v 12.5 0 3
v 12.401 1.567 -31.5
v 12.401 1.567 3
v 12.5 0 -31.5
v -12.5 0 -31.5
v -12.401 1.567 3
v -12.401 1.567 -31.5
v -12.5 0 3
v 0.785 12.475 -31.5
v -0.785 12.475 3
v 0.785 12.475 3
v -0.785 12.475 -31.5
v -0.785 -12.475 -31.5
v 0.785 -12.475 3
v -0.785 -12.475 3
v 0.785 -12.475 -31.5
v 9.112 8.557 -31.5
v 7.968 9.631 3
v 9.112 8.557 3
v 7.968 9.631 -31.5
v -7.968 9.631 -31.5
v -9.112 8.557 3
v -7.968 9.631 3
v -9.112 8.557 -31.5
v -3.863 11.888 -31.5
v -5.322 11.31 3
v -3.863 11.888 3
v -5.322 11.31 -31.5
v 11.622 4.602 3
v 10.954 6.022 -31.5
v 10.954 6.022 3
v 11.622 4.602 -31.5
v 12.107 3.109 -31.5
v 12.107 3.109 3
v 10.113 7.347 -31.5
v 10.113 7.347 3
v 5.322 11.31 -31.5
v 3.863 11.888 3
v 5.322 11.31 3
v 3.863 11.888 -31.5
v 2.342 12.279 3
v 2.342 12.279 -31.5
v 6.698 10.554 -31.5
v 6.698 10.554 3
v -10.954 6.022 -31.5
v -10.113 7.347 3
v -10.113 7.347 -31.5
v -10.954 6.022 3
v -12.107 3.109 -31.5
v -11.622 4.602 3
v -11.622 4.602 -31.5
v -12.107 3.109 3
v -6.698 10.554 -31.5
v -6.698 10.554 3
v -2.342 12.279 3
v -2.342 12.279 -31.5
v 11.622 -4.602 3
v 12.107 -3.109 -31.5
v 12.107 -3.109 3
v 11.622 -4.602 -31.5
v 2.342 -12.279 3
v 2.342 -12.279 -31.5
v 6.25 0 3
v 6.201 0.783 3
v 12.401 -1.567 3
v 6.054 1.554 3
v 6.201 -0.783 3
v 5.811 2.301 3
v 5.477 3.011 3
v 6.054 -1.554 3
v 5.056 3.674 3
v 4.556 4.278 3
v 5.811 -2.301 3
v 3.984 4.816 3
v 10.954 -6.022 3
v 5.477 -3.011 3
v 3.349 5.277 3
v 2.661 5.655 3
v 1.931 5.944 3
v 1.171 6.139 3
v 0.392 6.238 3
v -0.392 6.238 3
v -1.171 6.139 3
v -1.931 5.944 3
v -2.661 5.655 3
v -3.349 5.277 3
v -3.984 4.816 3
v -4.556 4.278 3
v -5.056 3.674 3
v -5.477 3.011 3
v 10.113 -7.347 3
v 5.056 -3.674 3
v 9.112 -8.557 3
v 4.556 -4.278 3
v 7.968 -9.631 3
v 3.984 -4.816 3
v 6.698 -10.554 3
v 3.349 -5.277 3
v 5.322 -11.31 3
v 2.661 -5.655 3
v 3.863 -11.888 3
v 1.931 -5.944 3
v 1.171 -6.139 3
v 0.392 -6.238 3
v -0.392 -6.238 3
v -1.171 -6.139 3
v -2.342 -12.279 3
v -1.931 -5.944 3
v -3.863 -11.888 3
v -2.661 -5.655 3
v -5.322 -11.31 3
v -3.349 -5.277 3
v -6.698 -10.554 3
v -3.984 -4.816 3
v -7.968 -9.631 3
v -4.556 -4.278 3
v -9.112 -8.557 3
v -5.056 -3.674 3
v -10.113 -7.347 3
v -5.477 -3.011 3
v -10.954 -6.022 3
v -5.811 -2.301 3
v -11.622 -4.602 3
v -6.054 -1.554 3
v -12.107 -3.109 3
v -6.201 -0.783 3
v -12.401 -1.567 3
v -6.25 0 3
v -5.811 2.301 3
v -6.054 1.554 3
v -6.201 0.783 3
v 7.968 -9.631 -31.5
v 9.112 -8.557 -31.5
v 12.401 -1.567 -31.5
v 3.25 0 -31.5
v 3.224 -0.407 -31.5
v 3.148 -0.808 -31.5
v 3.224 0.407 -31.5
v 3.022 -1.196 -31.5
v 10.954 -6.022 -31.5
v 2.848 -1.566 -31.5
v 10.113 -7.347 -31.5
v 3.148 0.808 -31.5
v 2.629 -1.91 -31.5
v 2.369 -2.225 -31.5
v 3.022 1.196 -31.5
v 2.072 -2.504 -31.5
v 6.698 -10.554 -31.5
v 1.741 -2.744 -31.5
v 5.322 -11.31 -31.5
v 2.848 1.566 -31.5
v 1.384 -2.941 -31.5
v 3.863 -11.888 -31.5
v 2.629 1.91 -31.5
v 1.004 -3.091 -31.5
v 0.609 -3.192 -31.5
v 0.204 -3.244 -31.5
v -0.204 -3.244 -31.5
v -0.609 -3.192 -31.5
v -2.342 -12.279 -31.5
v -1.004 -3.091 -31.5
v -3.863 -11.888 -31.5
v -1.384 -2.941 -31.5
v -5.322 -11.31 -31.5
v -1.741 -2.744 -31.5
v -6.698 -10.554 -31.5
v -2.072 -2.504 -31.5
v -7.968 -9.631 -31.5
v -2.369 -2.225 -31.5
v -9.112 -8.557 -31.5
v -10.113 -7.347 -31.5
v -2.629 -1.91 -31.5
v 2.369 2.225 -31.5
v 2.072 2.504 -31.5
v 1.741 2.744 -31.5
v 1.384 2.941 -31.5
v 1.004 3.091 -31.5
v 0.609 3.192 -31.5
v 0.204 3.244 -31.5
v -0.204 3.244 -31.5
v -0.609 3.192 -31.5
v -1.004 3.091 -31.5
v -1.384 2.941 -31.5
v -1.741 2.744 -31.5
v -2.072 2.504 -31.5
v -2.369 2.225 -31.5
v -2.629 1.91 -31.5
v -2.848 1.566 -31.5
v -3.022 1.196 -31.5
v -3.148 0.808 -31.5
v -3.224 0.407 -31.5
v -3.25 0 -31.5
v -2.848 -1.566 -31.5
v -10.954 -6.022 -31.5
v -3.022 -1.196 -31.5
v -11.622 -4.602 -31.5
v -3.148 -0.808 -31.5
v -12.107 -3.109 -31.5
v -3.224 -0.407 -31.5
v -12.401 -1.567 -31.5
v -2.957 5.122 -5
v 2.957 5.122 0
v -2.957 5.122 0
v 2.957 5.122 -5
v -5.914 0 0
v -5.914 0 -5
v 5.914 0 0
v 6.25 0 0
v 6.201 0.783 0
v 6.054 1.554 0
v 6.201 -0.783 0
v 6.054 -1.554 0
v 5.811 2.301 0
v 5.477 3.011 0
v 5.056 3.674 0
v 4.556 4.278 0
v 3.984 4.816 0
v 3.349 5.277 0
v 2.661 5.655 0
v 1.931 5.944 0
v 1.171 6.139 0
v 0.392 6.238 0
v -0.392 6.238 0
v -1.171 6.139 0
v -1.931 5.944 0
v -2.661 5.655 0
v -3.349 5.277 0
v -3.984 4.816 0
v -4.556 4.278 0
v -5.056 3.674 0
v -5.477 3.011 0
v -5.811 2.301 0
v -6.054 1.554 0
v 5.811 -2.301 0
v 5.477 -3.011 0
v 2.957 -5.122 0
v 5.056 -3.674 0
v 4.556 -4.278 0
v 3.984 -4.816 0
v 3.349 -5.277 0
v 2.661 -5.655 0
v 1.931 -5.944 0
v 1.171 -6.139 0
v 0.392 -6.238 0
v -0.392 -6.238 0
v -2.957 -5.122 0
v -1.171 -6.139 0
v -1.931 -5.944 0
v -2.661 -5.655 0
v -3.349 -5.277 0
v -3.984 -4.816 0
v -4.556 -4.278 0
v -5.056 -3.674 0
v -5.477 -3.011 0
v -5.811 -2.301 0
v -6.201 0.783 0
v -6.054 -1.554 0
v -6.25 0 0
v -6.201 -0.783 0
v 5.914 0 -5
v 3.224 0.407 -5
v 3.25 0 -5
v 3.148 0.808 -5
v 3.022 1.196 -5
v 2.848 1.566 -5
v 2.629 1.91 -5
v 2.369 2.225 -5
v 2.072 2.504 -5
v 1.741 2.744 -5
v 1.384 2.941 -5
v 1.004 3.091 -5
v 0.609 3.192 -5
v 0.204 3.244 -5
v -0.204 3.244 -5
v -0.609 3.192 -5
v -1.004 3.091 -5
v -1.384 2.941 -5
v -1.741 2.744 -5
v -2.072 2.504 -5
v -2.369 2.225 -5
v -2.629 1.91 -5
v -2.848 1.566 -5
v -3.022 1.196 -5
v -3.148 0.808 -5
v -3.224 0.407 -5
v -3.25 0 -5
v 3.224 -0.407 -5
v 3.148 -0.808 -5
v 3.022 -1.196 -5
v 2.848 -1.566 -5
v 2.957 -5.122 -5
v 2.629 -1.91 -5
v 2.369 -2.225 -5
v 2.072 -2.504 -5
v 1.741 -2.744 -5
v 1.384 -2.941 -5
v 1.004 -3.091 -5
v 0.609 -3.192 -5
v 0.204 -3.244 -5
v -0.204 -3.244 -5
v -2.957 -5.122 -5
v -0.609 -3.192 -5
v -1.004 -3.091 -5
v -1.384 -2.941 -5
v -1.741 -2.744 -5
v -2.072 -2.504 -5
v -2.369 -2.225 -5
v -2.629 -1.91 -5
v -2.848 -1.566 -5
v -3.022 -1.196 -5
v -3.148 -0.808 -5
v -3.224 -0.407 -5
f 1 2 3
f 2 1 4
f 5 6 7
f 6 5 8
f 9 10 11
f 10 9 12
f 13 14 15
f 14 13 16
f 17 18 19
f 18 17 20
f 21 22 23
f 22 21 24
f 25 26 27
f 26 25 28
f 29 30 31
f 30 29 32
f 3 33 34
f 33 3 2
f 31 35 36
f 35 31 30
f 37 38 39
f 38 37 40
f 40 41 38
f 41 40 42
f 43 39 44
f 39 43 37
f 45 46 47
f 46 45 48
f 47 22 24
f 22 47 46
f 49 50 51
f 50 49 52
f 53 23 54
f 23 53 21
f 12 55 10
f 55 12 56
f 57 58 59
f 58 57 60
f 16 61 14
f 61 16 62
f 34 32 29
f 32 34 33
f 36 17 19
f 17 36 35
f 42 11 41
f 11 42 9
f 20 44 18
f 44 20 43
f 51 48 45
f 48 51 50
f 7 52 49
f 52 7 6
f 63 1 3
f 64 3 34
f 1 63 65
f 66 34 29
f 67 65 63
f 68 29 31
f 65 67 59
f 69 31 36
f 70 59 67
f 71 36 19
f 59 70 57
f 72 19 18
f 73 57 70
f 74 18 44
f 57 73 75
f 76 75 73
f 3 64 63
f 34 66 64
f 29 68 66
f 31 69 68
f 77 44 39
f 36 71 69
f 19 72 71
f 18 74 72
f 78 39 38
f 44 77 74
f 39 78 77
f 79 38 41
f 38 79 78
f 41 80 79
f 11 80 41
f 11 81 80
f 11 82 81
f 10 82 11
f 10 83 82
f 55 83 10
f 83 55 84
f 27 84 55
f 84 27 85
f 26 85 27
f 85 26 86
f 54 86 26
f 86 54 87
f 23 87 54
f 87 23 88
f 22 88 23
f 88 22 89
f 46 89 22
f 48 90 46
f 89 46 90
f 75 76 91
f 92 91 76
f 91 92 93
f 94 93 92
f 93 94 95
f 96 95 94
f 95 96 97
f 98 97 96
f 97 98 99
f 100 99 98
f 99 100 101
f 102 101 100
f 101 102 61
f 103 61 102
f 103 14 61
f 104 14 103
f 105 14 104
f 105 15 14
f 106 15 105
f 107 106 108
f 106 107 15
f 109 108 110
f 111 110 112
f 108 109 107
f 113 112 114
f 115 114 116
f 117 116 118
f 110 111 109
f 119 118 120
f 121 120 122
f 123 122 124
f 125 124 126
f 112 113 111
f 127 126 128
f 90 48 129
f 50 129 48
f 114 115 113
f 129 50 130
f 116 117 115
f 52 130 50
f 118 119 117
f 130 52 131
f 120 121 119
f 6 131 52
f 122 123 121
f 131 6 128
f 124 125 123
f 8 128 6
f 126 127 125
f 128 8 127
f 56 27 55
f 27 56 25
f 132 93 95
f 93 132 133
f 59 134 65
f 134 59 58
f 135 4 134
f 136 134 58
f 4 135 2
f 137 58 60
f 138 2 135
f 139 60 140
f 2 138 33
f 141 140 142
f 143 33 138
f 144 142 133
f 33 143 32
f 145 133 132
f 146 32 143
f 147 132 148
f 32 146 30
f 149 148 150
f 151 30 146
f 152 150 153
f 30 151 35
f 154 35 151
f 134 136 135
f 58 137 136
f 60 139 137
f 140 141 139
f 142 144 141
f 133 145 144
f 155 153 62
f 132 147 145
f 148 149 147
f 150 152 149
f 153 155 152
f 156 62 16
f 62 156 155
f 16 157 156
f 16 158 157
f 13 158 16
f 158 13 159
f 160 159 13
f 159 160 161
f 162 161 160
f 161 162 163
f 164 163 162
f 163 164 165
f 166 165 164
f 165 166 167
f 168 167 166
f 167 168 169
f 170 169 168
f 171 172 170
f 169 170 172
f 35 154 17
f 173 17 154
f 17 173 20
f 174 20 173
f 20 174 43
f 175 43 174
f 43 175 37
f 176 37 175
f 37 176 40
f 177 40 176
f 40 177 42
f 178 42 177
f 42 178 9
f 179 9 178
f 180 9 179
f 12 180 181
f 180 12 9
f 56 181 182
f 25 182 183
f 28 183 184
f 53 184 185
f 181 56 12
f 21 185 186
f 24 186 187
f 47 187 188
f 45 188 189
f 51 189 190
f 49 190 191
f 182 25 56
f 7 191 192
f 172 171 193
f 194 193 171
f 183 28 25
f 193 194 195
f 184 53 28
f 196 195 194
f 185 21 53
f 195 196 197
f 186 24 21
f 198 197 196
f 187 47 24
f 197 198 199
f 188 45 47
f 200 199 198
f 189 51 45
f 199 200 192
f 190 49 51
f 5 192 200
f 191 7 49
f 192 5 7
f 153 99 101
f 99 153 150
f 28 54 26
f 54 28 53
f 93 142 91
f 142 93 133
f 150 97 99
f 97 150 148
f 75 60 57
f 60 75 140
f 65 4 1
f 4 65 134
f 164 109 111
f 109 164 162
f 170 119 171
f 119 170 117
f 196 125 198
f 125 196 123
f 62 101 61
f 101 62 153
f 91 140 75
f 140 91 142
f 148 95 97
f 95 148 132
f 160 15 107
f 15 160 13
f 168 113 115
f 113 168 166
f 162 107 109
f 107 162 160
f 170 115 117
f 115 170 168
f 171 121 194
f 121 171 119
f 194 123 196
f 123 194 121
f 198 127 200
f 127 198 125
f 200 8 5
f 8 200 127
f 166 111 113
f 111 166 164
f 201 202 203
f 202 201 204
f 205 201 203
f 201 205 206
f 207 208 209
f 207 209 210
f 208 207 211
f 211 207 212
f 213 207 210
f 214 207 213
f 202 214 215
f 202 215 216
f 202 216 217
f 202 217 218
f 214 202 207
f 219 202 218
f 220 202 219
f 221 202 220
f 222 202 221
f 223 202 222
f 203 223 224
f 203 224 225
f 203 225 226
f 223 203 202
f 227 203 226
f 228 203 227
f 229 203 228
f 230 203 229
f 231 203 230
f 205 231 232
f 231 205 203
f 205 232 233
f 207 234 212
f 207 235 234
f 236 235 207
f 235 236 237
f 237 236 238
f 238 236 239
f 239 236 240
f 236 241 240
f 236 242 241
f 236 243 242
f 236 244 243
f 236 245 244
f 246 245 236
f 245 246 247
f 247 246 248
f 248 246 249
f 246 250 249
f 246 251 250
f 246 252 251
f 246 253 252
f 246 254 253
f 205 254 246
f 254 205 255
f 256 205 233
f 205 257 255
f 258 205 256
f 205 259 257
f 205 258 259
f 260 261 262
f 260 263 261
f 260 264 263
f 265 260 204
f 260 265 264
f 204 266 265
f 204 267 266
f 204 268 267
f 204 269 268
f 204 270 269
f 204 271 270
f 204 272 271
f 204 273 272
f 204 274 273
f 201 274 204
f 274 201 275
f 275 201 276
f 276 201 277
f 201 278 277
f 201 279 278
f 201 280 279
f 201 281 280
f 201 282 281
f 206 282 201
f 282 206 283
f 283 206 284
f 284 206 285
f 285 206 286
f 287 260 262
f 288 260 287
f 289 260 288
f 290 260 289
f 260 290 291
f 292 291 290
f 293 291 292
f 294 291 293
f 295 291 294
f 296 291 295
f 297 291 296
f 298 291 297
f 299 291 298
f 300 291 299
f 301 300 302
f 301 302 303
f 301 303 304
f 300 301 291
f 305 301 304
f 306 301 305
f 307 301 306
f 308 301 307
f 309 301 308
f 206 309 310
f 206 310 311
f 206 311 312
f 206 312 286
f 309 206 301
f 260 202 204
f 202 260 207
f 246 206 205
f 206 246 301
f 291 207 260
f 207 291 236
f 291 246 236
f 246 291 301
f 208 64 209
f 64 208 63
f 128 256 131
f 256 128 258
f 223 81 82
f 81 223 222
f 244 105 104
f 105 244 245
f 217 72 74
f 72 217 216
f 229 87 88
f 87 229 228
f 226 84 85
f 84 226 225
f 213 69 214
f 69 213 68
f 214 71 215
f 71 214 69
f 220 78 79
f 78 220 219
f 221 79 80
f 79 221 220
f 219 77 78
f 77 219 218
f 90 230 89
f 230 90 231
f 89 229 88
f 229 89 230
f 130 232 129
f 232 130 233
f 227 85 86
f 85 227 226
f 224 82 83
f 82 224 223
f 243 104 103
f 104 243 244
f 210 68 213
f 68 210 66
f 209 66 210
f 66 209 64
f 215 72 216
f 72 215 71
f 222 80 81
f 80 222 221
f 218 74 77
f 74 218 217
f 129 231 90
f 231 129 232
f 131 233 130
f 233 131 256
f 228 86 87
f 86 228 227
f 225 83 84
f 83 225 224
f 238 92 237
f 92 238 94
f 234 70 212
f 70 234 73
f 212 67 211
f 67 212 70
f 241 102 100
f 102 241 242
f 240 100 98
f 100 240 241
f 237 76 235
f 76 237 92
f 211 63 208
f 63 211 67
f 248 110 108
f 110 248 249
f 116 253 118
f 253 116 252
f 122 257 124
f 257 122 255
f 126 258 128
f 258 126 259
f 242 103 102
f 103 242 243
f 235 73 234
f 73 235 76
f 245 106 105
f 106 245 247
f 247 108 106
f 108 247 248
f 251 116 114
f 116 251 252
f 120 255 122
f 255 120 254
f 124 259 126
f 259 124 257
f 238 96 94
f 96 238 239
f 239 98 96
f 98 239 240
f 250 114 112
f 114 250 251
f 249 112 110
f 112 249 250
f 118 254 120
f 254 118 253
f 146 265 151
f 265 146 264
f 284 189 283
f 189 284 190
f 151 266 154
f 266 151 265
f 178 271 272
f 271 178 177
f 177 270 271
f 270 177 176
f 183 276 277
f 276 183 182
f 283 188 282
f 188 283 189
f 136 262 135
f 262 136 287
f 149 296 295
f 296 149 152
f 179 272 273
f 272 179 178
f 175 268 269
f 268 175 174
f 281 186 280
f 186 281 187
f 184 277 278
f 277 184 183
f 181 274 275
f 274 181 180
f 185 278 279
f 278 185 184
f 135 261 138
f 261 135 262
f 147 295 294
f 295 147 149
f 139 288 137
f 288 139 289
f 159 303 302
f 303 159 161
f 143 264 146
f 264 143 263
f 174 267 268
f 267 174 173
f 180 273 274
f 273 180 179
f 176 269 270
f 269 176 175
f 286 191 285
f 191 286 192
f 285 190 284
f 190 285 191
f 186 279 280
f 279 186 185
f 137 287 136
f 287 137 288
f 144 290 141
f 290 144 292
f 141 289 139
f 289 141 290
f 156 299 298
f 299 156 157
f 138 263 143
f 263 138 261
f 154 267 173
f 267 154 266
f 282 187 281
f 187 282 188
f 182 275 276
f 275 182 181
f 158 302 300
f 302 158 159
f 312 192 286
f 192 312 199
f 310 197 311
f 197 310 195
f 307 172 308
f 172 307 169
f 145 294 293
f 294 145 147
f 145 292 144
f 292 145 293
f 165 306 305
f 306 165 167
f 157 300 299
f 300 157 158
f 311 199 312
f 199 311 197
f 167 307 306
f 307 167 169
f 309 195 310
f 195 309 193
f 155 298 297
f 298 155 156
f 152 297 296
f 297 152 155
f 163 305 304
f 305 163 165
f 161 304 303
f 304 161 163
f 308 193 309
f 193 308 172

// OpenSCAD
$fn = 50;

difference() {
	union() {
		translate(v = [0, 0, -31.5]) {
			cylinder(h = 34.5, r = 12.5);
		}
		#translate(v = [0, 0, -33.0]) {
			cylinder(h = 33, r = 2.875);
		}
	}
	union() {
		translate(v = [0, 0, 0]) {
			rotate(a = [0, 0, 0]) {
				difference() {
					union() {
						translate(v = [0, 0, -5]) {
							linear_extrude(height = 5) {
								polygon(points = [[5.914249999999999, 0.0], [2.957125, 5.1218907443321156], [-2.9571249999999982, 5.1218907443321156], [-5.914249999999999, 7.242867331857232e-16], [-2.9571250000000022, -5.121890744332115], [2.9571249999999956, -5.121890744332118]]);
							}
						}
					}
					union();
				}
			}
		}
		#cylinder(h = 3, r = 6.25);
		#translate(v = [0, 0, -100.0]) {
			cylinder(h = 200, r = 3.25);
		}
	}
}
